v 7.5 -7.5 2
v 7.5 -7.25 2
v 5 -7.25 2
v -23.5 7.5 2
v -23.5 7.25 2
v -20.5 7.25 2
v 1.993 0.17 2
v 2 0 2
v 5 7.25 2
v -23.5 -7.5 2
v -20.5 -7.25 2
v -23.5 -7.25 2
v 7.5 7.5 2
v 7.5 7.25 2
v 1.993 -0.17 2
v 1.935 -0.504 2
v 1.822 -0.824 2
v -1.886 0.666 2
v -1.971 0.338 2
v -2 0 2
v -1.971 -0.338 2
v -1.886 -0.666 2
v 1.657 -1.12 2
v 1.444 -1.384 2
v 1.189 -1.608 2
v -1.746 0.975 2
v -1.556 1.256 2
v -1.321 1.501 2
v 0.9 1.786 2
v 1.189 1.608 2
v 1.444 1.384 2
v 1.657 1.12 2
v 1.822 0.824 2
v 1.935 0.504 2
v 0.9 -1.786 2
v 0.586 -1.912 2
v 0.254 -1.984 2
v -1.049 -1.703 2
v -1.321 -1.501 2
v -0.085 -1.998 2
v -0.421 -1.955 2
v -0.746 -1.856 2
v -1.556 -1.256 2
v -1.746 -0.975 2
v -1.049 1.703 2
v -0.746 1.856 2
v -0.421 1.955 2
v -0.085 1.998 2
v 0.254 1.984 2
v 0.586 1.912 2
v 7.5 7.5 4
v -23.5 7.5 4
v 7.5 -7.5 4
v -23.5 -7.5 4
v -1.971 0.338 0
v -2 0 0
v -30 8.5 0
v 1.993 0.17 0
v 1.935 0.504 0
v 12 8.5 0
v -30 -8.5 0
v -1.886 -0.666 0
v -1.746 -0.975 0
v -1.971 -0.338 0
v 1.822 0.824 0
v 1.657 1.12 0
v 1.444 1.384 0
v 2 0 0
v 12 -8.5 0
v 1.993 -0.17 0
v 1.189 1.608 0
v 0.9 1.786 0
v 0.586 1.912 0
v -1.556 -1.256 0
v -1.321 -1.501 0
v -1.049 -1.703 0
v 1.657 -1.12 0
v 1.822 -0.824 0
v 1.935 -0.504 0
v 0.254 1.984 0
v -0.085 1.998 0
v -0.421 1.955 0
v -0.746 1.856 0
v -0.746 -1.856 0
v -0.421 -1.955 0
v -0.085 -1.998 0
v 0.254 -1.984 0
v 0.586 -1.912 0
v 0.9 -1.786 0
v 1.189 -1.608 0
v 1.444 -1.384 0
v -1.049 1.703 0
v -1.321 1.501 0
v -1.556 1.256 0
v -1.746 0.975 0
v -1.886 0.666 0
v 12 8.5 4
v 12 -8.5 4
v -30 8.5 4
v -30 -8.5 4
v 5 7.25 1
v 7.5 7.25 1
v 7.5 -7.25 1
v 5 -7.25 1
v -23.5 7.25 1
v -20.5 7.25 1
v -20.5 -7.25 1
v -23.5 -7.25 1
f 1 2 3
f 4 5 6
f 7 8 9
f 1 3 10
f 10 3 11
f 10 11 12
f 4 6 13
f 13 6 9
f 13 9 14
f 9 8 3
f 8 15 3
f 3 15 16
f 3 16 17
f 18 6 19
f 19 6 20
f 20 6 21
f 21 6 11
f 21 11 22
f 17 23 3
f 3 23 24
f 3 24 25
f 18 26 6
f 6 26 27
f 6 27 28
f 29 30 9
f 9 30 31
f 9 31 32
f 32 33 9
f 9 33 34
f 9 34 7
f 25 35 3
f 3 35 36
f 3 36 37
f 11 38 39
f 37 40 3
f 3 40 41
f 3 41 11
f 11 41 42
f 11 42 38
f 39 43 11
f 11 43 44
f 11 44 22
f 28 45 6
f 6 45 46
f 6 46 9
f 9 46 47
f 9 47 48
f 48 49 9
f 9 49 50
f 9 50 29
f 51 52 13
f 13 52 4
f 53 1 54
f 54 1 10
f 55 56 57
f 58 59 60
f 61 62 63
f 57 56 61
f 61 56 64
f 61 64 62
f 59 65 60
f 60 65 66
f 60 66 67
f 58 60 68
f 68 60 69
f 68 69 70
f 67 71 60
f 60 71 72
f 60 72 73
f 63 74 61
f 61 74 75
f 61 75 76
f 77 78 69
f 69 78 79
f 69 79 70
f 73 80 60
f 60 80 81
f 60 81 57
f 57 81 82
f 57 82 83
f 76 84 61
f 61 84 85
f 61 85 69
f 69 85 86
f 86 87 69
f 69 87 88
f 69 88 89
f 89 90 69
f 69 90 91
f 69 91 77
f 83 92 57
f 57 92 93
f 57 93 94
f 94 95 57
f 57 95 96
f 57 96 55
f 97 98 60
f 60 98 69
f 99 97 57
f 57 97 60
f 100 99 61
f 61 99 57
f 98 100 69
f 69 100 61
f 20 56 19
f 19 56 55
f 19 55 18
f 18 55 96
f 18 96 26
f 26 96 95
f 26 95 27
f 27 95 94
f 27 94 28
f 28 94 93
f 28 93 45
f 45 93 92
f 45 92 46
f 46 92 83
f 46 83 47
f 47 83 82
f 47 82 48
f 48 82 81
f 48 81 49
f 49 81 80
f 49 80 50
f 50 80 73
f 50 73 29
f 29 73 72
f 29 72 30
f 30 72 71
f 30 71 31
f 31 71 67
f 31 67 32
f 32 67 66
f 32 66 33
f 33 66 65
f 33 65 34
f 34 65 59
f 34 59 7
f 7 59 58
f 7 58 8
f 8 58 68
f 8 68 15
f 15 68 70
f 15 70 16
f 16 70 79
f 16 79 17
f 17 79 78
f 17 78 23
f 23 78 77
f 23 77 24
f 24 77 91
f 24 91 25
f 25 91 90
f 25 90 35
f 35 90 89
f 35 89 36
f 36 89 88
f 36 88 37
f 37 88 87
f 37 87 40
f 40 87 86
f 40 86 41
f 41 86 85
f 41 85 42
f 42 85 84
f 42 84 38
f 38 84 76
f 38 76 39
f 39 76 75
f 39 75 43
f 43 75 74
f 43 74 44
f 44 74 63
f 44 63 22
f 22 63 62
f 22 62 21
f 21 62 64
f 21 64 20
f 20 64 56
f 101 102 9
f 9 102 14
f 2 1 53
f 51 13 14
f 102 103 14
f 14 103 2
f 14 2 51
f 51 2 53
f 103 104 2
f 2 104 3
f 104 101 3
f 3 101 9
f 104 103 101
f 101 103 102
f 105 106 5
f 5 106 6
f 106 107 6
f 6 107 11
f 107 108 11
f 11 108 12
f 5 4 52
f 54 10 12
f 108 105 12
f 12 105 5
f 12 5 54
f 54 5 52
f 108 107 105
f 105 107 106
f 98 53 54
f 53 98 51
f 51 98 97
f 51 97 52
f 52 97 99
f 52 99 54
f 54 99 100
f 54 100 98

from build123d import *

# Parameters (mm, degrees)
SKETCH_1_R          = 2
EXTRUDE_1_DEPTH     = 2
SKETCH_3_W          = 3
SKETCH_3_H          = 14.5
CUT_EXTRUDE_1_DEPTH = 1
SKETCH_4_W          = 42
SKETCH_4_H          = 17
SKETCH_4_W_2        = 40
SKETCH_4_H_2        = 15
EXTRUDE_2_DEPTH     = 1
SKETCH_6_W          = 5.5
SKETCH_6_H          = 15
SKETCH_6_W_2        = 3.5
EXTRUDE_4_DEPTH     = 1
SKETCH_7_W          = 42
SKETCH_7_H          = 17
SKETCH_7_W_2        = 31
SKETCH_7_H_2        = 15
EXTRUDE_5_DEPTH     = 1


with BuildPart() as part:
    # 草图1 → 凸台-拉伸1 (new body)
    with BuildSketch(Plane.XY):
        Polygon((-30, 8.5), (-30, -8.5), (12, -8.5), (12, 0), (12, 8.5), align=None)
        Circle(SKETCH_1_R, mode=Mode.SUBTRACT)
    extrude(amount=EXTRUDE_1_DEPTH)

    # 草图3 → 切除-拉伸1 (cut)
    with BuildSketch(Plane.XY.offset(2)):
        with Locations((-22, 0)):
            Rectangle(SKETCH_3_W, SKETCH_3_H)
        Polygon((7.5, 7.25), (5, 7.25), (5, -7.25), (7.5, -7.25), (7.5, 0), align=None)
    extrude(amount=-CUT_EXTRUDE_1_DEPTH, mode=Mode.SUBTRACT)

    # 草图4 → 凸台-拉伸2 (add)
    with BuildSketch(Plane.XY.offset(2)):
        with Locations((-9, 0)):
            Rectangle(SKETCH_4_W, SKETCH_4_H)
        with Locations((-9, 0)):
            Rectangle(SKETCH_4_W_2, SKETCH_4_H_2, mode=Mode.SUBTRACT)
    extrude(amount=EXTRUDE_2_DEPTH)

    # 草图6 → 凸台-拉伸4 (add)
    with BuildSketch(Plane.XY.offset(2)):
        with Locations((-26.25, 0)):
            Rectangle(SKETCH_6_W, SKETCH_6_H)
        with Locations((9.25, 0)):
            Rectangle(SKETCH_6_W_2, SKETCH_6_H)
    extrude(amount=EXTRUDE_4_DEPTH)

    # 草图7 → 凸台-拉伸5 (add)
    with BuildSketch(Plane.XY.offset(3)):
        with Locations((-9, 0)):
            Rectangle(SKETCH_7_W, SKETCH_7_H)
        with Locations((-8, 0)):
            Rectangle(SKETCH_7_W_2, SKETCH_7_H_2, mode=Mode.SUBTRACT)
    extrude(amount=EXTRUDE_5_DEPTH)


solid = part.part
